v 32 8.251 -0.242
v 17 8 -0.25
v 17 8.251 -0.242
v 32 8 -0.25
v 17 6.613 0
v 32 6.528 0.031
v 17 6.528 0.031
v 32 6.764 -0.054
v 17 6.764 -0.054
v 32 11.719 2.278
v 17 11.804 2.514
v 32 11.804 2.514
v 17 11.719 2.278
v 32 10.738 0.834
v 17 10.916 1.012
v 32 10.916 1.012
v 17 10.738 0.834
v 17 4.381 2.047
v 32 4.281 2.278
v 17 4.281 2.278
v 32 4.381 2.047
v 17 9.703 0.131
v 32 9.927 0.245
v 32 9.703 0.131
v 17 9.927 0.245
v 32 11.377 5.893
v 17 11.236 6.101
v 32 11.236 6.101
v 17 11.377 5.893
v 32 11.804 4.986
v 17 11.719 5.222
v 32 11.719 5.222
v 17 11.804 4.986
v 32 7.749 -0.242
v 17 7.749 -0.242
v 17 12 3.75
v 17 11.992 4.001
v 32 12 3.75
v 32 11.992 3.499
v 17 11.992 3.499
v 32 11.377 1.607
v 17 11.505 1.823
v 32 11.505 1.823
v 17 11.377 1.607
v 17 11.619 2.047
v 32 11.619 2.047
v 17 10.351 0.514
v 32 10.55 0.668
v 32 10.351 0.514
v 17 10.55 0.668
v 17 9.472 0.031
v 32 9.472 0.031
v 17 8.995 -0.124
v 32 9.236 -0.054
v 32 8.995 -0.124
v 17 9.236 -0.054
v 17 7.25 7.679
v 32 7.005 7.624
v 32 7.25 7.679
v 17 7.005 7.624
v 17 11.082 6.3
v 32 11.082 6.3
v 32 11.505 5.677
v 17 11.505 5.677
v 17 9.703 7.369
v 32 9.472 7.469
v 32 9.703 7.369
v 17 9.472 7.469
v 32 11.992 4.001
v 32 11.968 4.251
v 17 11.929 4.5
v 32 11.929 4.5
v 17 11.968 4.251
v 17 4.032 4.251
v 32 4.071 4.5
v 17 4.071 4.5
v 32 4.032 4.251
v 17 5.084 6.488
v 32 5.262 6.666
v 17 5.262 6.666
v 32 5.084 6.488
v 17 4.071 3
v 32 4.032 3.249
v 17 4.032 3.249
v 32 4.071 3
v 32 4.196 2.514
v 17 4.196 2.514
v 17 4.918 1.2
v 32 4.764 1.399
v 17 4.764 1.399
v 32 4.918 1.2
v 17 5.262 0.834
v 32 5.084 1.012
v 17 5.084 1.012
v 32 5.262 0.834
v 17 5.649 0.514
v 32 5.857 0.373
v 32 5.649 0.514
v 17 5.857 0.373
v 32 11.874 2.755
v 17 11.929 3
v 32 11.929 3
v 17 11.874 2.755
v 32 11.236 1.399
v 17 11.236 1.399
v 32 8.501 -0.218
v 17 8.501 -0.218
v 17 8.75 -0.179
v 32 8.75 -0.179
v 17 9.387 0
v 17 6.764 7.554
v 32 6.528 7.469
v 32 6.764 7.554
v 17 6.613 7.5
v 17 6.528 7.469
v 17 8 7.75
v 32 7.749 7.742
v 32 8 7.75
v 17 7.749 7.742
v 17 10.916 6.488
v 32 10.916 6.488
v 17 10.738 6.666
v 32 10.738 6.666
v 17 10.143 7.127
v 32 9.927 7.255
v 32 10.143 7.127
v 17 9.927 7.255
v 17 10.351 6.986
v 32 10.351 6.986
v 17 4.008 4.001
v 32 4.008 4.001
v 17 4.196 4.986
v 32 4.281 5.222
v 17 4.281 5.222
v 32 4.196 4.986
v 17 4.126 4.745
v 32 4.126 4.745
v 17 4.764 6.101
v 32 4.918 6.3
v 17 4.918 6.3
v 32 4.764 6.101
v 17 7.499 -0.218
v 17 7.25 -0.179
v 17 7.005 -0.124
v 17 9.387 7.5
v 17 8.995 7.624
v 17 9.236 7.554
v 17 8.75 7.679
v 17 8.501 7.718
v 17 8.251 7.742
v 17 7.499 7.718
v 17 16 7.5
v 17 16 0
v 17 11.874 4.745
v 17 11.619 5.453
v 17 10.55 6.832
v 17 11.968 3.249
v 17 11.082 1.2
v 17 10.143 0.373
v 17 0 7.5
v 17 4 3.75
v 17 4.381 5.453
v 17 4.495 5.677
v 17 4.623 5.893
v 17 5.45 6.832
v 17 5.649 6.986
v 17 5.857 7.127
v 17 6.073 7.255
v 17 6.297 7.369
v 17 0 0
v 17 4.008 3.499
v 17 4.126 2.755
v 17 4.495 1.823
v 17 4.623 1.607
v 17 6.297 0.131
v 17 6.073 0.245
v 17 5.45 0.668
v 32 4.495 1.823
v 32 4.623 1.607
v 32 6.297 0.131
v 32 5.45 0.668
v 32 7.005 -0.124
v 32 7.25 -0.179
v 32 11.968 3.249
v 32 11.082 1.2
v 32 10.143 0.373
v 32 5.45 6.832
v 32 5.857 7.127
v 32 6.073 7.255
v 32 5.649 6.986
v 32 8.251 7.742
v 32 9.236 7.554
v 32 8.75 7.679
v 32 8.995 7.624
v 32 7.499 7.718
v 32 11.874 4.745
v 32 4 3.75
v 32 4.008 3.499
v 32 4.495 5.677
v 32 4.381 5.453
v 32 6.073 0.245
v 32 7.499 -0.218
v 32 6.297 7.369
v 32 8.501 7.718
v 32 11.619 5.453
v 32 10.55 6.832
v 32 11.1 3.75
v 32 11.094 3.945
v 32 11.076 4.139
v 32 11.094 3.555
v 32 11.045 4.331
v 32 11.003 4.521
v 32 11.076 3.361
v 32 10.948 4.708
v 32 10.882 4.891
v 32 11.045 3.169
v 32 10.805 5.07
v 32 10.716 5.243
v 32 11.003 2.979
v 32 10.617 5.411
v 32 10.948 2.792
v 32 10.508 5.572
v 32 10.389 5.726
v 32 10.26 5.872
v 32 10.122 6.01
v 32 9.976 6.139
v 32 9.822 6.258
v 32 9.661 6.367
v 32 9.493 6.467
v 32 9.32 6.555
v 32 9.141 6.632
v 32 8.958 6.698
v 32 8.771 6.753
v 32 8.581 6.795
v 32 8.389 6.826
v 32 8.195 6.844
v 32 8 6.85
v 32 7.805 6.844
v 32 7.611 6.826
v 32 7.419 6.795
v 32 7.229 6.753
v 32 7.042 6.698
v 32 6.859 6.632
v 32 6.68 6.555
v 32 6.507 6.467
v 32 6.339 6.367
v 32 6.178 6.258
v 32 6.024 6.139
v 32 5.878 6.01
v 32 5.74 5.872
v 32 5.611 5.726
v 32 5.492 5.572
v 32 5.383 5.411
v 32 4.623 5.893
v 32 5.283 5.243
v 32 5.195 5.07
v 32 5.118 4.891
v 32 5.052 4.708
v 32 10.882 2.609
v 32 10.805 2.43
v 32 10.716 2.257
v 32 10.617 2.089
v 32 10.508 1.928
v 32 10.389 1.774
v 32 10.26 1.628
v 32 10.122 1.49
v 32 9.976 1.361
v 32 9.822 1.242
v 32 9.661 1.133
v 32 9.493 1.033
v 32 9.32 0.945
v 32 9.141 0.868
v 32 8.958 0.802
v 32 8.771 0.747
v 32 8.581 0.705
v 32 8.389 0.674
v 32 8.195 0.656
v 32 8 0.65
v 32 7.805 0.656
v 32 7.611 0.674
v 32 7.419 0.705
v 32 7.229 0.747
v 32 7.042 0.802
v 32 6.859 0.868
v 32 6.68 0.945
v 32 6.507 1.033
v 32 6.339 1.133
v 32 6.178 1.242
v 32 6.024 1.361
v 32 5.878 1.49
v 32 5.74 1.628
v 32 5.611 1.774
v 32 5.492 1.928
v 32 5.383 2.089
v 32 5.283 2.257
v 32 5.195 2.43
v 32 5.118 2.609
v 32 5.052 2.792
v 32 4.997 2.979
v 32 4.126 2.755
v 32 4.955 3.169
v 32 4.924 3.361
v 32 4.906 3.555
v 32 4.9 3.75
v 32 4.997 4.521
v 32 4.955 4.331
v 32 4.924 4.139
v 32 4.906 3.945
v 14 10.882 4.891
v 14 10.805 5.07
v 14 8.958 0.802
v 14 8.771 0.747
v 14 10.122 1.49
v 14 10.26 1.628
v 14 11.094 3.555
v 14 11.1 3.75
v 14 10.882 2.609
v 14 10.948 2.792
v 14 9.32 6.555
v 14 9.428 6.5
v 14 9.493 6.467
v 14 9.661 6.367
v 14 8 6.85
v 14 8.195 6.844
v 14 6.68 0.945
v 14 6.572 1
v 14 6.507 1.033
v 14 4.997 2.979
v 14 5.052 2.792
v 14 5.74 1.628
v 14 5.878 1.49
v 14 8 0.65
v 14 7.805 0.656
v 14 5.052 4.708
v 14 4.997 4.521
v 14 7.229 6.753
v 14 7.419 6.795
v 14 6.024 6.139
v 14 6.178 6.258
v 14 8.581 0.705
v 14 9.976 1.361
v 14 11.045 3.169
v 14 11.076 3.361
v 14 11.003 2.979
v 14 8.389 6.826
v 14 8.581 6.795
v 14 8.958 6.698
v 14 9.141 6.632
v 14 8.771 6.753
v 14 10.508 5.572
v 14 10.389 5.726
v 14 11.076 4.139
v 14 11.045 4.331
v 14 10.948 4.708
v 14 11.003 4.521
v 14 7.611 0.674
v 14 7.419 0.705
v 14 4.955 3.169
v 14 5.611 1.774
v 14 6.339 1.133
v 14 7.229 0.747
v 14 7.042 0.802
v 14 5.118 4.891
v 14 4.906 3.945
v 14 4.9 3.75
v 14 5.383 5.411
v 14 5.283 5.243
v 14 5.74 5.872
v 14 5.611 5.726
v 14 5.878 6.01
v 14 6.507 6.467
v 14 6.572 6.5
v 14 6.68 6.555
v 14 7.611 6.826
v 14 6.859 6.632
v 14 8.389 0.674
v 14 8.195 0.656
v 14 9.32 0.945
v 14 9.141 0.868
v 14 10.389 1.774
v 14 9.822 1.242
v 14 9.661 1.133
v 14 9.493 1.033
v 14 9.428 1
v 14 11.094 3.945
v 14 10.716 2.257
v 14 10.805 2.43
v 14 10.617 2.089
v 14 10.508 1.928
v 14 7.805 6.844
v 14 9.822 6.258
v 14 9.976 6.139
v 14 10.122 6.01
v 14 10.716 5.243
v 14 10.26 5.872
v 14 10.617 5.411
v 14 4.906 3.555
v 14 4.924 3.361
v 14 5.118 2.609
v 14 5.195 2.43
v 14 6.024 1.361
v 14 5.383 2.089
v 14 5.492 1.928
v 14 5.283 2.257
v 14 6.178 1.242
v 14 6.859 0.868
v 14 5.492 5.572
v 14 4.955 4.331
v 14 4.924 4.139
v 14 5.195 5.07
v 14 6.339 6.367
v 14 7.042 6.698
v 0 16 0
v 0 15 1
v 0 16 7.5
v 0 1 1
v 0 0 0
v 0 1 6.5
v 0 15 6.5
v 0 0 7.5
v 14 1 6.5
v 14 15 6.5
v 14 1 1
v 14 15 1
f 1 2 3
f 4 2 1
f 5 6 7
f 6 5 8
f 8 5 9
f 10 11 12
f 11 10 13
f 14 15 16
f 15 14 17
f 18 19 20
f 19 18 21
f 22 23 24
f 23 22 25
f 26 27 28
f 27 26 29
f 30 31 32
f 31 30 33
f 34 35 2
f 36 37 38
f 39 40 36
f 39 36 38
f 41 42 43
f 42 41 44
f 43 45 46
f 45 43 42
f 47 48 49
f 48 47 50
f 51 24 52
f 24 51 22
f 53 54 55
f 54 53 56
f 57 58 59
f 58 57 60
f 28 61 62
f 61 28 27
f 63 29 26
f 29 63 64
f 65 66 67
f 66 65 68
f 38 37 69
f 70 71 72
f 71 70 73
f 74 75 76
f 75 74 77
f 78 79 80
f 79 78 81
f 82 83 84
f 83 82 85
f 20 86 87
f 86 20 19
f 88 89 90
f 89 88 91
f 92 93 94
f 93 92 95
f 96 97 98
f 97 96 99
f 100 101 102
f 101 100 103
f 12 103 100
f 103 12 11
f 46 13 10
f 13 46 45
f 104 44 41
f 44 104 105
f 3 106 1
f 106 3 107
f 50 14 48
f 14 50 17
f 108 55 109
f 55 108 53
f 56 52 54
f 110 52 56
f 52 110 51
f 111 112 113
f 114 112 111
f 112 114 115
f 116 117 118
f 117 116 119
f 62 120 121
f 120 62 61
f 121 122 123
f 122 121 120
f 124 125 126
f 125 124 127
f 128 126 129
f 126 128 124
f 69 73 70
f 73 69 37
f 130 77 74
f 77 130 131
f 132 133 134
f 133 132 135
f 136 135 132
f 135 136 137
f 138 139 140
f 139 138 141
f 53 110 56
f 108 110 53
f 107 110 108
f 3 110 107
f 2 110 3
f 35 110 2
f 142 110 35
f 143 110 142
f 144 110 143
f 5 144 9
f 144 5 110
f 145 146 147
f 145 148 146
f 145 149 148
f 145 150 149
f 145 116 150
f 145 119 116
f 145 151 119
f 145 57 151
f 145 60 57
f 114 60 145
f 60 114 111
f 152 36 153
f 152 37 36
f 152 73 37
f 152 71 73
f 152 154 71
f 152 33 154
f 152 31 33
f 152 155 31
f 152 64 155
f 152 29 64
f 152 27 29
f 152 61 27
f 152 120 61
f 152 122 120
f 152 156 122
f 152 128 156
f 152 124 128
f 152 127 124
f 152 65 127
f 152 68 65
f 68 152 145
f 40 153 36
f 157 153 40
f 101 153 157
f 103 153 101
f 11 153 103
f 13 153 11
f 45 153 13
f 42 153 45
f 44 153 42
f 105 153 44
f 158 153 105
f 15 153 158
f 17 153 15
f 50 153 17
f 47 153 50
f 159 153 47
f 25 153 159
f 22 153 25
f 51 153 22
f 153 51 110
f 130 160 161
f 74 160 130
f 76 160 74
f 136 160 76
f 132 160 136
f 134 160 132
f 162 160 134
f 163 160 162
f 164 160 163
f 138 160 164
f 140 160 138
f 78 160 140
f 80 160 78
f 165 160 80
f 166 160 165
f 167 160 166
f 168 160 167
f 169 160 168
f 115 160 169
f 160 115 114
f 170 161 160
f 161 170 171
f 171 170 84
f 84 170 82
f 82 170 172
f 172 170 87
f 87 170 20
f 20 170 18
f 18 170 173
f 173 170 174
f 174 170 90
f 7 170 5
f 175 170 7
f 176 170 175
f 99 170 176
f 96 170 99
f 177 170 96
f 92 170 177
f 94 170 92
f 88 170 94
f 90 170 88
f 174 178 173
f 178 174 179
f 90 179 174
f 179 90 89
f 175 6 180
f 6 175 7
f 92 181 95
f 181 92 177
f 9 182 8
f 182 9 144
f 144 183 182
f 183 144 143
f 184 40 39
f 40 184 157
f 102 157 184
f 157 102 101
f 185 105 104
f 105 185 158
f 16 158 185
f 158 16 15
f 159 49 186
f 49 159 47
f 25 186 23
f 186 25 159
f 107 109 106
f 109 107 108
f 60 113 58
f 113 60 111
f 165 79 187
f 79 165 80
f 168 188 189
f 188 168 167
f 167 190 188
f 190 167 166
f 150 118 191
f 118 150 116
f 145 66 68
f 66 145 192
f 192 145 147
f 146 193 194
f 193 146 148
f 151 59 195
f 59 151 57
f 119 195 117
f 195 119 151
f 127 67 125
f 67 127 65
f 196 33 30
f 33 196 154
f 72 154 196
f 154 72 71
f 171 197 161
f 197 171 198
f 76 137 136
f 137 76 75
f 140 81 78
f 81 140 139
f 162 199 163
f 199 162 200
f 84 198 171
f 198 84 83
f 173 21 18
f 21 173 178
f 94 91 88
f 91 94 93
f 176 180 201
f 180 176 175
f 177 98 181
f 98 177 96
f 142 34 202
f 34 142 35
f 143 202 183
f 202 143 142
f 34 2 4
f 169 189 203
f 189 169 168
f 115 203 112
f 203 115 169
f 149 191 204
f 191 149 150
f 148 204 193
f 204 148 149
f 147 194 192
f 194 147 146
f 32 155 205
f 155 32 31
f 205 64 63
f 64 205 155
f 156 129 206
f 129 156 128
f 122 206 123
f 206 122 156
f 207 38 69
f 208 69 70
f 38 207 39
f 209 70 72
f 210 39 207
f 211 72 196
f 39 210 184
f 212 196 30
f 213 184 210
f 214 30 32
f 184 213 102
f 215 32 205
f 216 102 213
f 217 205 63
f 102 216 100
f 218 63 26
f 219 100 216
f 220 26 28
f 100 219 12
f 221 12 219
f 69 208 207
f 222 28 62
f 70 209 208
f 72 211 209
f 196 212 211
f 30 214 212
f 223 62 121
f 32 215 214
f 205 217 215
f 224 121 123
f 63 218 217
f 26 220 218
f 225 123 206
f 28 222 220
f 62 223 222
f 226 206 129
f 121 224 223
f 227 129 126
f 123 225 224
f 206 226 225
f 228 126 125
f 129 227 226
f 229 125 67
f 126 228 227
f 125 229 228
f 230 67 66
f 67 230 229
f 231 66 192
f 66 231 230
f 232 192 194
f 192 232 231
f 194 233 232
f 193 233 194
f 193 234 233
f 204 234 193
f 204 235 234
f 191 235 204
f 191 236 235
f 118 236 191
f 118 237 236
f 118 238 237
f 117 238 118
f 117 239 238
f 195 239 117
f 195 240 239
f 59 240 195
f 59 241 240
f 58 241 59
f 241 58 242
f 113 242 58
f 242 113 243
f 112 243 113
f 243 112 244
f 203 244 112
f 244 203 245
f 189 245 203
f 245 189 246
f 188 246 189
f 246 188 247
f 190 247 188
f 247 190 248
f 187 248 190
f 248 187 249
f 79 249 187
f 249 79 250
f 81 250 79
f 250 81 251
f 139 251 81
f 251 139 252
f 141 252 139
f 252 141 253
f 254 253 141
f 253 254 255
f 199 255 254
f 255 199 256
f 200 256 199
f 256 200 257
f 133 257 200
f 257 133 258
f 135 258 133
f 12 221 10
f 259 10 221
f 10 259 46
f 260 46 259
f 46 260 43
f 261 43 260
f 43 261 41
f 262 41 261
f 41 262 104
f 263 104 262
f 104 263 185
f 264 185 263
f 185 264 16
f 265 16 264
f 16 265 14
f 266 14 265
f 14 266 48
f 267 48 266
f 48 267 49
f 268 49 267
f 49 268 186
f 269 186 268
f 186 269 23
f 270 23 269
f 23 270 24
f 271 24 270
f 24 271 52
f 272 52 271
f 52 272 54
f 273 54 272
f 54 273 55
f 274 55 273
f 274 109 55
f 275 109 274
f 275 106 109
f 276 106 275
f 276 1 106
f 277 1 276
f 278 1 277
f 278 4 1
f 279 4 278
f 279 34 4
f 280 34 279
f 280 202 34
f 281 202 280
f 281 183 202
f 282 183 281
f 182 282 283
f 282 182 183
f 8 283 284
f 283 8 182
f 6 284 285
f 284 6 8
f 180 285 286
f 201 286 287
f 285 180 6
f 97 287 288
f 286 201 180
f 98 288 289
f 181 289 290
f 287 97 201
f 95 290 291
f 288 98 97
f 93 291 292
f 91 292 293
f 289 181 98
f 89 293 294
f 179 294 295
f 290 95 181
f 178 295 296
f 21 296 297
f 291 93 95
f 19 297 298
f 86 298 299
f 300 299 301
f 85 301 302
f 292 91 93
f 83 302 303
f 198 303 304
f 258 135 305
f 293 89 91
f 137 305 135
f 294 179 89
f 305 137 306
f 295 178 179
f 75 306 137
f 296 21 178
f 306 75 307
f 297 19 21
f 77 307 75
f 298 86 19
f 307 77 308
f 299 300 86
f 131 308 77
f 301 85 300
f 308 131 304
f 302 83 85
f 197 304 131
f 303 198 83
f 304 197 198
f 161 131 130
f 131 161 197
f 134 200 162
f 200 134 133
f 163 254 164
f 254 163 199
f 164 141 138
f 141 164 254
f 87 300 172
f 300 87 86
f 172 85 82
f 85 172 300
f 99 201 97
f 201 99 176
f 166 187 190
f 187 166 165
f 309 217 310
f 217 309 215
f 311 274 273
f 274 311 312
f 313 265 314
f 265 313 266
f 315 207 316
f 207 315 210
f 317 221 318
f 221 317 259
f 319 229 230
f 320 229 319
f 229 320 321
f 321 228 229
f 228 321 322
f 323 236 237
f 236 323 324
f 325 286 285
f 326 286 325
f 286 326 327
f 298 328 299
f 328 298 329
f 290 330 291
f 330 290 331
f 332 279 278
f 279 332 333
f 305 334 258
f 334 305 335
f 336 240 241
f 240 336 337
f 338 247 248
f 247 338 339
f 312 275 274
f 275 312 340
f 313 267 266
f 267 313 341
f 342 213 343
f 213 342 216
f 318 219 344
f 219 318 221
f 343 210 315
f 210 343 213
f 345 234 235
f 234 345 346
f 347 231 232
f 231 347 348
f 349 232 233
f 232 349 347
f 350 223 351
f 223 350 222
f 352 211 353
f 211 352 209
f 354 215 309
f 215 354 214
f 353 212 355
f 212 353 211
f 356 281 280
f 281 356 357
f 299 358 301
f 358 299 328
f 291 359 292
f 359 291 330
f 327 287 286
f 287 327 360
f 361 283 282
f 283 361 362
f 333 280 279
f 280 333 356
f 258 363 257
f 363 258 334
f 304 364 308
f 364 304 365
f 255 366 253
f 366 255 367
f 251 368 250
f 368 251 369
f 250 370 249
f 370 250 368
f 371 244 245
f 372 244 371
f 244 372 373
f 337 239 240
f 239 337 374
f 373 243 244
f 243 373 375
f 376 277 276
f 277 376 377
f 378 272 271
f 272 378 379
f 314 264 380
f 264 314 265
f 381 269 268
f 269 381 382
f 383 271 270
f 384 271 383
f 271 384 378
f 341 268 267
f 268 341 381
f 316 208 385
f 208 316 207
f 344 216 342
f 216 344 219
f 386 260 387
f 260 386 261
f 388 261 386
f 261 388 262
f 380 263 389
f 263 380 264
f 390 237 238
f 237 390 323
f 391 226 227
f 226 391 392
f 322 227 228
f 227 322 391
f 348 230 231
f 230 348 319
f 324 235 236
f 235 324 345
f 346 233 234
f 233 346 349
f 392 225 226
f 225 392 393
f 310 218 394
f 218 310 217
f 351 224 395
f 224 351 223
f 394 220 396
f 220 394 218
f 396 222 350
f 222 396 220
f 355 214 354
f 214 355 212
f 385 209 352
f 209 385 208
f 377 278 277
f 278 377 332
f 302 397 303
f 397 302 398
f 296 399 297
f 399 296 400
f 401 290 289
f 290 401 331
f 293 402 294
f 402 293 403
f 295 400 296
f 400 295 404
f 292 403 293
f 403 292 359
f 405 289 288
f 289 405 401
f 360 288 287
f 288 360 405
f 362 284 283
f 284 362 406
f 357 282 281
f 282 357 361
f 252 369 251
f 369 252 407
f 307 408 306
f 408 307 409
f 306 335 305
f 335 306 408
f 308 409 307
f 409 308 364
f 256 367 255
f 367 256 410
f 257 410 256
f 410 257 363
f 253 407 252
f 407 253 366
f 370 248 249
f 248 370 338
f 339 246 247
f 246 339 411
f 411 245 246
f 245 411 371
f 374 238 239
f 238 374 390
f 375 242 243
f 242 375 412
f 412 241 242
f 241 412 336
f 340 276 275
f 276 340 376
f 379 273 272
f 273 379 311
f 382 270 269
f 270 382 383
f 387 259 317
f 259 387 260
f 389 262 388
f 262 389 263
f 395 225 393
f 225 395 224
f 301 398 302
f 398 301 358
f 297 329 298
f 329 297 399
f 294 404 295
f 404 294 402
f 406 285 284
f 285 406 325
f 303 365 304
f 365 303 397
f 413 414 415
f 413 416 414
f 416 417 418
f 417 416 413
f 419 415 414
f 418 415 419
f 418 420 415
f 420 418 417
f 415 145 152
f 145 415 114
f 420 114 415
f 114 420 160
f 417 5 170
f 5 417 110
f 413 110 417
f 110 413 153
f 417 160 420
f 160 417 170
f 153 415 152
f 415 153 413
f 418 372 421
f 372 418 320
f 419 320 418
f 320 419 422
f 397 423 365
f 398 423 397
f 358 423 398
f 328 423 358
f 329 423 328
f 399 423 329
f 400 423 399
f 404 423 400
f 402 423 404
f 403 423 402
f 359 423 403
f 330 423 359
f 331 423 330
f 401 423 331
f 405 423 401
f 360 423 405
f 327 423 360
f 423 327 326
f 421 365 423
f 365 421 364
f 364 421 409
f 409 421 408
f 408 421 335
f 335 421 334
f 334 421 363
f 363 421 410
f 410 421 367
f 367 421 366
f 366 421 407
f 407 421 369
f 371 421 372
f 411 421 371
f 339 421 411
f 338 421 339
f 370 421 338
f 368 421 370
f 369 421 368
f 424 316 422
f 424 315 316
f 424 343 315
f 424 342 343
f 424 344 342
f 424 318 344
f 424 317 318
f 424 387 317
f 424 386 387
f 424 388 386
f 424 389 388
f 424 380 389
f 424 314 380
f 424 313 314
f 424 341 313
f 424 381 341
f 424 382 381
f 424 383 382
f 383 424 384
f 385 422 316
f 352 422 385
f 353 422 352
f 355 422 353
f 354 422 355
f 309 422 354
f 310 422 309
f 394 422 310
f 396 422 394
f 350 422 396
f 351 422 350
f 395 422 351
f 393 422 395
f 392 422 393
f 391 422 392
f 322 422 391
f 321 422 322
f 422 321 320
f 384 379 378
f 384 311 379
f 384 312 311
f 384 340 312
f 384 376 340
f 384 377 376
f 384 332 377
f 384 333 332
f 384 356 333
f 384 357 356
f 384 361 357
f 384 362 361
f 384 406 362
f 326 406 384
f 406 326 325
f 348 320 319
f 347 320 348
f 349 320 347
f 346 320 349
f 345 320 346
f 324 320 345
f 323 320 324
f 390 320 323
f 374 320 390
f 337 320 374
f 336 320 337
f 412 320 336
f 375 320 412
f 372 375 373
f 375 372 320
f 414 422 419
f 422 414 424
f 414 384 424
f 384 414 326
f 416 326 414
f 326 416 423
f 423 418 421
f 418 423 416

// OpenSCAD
//--------------------------------------------------------------
// Name: usb_led_holder
// Version: 1.1
// Purpose: 
// Author: Evgeny Klepikov
// E-mail: klek07@ya.ru
//
// Created: 10.04.2018
// Updated: 12.04.2018
// Copyright: (c) 2018 WildFox24
// Licence: GPL v3
//--------------------------------------------------------------
wth=2; //wall thikness

difference() {
    translate([0,0,0]) cube([17, 14+wth, 5.5+wth]);
    translate([-3,wth/2,wth/2]) cube([17, 14, 5.5]);
    translate([17-3,(14+wth)/2,(5.5+wth)/2]) rotate([0,90,0]) cylinder(d=6+0.2, h=wth+1, $fn=100);
}

difference() {
    translate([17,(14+wth)/2,(5.5+wth)/2]) rotate([0,90,0]) cylinder(d=6+wth, h=15, $fn=100);
    translate([17,(14+wth)/2,(5.5+wth)/2]) rotate([0,90,0]) cylinder(d=6+0.2, h=15+2, $fn=100);
}
